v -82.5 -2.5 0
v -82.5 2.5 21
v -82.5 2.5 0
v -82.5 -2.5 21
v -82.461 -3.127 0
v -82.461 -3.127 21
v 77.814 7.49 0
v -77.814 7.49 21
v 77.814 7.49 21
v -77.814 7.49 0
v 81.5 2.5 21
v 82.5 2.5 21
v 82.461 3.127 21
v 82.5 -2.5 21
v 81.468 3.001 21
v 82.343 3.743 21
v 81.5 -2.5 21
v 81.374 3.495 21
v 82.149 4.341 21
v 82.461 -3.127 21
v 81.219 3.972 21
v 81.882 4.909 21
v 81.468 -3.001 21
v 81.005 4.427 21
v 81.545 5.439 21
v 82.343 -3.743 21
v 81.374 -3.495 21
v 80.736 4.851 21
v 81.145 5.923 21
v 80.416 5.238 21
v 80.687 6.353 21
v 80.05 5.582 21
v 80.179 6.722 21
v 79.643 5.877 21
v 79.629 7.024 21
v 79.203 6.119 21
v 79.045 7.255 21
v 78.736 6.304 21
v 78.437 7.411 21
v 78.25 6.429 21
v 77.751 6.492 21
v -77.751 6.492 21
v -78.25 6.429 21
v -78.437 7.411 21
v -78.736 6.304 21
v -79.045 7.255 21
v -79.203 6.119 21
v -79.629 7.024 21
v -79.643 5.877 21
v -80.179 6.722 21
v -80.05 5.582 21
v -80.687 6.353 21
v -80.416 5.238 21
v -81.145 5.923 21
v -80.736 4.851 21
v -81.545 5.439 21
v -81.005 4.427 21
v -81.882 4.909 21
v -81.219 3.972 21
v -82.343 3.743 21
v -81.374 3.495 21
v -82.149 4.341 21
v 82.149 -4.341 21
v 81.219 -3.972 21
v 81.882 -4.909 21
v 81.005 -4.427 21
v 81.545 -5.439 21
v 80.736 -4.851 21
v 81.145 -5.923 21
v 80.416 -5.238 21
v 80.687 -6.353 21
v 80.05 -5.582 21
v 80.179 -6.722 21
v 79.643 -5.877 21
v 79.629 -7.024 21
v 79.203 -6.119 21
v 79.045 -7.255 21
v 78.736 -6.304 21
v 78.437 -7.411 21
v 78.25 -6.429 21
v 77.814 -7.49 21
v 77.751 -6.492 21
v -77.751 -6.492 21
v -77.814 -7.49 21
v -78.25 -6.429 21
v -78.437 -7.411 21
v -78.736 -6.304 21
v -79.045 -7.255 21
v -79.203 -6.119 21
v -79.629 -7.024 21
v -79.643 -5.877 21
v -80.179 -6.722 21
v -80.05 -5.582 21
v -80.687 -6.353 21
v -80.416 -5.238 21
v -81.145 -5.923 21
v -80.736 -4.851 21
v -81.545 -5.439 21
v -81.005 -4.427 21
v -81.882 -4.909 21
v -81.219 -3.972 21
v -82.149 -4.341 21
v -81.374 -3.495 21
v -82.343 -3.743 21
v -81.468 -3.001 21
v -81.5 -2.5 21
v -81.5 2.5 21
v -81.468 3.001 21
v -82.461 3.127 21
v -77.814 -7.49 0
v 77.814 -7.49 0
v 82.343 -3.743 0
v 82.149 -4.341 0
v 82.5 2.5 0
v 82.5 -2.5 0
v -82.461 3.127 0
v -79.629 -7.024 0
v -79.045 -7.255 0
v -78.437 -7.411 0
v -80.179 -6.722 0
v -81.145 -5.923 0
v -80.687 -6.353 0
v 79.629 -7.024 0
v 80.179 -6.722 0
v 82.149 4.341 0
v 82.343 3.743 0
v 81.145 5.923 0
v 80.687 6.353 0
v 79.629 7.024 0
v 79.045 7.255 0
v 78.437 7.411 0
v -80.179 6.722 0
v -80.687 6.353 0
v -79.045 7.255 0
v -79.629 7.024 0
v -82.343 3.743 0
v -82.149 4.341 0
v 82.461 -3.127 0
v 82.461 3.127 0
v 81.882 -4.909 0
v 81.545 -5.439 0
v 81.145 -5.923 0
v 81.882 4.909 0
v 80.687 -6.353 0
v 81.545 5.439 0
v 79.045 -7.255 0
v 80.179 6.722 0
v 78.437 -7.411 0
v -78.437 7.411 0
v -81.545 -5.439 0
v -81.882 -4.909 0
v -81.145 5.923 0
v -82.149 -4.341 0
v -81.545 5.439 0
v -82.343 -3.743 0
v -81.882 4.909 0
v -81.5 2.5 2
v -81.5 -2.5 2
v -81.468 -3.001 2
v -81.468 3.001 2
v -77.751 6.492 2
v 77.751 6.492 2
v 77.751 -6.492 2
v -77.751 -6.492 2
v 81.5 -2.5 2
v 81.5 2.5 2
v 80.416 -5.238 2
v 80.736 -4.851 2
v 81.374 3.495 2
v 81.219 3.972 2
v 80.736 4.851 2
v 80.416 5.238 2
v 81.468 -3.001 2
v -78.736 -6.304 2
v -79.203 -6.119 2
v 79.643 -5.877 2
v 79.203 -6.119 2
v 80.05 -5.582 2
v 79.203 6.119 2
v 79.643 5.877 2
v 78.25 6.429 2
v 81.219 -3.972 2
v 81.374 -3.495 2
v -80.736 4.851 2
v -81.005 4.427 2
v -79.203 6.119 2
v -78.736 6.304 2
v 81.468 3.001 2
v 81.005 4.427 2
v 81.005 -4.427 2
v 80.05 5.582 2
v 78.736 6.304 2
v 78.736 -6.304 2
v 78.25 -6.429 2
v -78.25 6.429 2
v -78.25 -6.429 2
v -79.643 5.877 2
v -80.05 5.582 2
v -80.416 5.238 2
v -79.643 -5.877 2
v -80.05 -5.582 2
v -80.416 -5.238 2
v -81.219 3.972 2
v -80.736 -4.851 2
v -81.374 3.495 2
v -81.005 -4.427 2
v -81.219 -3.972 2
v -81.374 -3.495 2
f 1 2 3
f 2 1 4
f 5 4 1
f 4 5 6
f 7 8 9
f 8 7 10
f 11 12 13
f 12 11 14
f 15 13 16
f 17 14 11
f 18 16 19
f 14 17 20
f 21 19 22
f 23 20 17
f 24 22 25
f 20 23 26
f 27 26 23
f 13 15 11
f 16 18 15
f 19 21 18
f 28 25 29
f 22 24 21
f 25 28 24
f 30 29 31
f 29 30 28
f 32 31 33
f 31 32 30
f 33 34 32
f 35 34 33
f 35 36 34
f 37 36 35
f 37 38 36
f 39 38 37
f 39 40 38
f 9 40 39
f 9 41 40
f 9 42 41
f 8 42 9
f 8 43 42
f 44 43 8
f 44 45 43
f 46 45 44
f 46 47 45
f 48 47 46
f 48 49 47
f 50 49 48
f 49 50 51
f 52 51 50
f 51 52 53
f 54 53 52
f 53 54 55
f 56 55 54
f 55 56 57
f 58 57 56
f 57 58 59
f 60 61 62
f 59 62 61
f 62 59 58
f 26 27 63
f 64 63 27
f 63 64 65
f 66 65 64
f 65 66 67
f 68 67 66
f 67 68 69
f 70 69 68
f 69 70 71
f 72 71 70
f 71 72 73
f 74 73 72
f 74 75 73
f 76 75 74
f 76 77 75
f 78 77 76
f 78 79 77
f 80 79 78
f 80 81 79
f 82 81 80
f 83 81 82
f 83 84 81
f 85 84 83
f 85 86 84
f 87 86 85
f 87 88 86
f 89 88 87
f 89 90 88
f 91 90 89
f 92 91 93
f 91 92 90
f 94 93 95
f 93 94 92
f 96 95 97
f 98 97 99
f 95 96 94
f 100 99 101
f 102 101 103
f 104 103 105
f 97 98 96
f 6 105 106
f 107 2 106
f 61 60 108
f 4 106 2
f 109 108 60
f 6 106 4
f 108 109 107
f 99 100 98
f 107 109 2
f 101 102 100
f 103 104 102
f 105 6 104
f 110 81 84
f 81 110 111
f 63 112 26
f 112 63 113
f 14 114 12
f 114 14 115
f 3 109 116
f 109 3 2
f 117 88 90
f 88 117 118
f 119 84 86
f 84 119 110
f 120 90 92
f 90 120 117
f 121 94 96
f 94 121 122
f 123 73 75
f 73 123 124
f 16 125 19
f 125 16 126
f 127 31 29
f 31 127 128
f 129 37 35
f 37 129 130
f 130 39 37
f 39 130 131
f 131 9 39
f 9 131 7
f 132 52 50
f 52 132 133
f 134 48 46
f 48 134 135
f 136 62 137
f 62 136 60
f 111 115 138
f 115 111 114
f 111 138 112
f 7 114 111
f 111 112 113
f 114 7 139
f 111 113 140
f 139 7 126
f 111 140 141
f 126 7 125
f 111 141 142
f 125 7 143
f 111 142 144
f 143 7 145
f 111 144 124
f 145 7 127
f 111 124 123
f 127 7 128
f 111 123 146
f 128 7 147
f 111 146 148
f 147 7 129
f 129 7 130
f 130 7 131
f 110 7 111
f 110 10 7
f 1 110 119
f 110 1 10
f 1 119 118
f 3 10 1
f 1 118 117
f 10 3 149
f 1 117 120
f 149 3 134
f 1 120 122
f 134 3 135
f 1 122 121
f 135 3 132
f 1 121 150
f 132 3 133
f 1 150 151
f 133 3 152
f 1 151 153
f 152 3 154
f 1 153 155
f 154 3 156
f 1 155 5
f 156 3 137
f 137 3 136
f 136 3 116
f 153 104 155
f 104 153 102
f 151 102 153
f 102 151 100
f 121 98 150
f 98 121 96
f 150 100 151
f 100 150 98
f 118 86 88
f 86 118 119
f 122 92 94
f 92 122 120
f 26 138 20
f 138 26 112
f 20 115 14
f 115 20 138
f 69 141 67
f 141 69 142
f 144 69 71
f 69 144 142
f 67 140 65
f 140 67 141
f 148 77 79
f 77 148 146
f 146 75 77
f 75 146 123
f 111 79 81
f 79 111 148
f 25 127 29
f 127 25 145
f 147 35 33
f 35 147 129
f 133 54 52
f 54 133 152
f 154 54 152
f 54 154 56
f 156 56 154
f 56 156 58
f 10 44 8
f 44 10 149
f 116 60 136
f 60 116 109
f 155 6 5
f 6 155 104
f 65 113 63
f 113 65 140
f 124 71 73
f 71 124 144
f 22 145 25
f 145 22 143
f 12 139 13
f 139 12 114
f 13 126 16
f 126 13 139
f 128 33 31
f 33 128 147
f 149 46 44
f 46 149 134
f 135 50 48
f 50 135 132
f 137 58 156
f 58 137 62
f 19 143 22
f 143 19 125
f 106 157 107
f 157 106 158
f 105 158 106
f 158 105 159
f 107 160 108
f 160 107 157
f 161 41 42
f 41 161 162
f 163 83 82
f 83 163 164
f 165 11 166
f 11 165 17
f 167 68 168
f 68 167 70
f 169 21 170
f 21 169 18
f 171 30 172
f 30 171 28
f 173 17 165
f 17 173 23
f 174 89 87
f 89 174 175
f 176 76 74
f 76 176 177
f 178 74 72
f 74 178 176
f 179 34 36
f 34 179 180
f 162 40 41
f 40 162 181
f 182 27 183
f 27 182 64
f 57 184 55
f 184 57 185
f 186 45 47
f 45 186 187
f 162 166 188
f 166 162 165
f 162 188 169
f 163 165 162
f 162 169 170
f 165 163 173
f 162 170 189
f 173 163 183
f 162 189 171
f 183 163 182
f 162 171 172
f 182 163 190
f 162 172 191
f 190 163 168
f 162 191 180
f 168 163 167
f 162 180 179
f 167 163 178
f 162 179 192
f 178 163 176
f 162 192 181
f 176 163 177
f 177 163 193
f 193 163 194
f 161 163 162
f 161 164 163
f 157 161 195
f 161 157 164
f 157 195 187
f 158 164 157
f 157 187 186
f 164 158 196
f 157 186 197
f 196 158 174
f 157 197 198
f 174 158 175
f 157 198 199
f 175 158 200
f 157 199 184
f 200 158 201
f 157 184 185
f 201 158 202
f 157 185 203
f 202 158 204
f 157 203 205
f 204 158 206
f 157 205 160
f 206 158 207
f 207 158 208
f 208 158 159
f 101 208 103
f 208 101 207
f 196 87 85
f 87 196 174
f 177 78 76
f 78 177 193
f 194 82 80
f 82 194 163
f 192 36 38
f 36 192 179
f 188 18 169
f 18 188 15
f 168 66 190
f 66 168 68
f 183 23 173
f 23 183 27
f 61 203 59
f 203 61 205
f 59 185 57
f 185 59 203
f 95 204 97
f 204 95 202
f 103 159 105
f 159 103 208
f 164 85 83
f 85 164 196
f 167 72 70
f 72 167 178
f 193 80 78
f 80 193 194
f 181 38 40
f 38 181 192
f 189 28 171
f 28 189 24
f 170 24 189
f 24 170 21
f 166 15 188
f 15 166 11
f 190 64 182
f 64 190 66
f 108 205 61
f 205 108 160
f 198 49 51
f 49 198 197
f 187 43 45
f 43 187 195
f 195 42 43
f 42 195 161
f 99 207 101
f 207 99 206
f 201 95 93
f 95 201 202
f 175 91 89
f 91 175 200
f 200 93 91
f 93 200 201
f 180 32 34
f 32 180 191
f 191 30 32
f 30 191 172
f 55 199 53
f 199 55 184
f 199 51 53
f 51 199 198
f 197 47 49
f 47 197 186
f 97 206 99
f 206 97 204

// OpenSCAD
$fn = 50;


difference() {
	union() {
		hull() {
			translate(v = [-77.5000000000, 2.5000000000, 0]) {
				cylinder(h = 21, r = 5);
			}
			translate(v = [77.5000000000, 2.5000000000, 0]) {
				cylinder(h = 21, r = 5);
			}
			translate(v = [-77.5000000000, -2.5000000000, 0]) {
				cylinder(h = 21, r = 5);
			}
			translate(v = [77.5000000000, -2.5000000000, 0]) {
				cylinder(h = 21, r = 5);
			}
		}
	}
	union() {
		translate(v = [0, 0, 2]) {
			hull() {
				translate(v = [-77.5000000000, 2.5000000000, 0]) {
					cylinder(h = 19, r = 4);
				}
				translate(v = [77.5000000000, 2.5000000000, 0]) {
					cylinder(h = 19, r = 4);
				}
				translate(v = [-77.5000000000, -2.5000000000, 0]) {
					cylinder(h = 19, r = 4);
				}
				translate(v = [77.5000000000, -2.5000000000, 0]) {
					cylinder(h = 19, r = 4);
				}
			}
		}
	}
}
